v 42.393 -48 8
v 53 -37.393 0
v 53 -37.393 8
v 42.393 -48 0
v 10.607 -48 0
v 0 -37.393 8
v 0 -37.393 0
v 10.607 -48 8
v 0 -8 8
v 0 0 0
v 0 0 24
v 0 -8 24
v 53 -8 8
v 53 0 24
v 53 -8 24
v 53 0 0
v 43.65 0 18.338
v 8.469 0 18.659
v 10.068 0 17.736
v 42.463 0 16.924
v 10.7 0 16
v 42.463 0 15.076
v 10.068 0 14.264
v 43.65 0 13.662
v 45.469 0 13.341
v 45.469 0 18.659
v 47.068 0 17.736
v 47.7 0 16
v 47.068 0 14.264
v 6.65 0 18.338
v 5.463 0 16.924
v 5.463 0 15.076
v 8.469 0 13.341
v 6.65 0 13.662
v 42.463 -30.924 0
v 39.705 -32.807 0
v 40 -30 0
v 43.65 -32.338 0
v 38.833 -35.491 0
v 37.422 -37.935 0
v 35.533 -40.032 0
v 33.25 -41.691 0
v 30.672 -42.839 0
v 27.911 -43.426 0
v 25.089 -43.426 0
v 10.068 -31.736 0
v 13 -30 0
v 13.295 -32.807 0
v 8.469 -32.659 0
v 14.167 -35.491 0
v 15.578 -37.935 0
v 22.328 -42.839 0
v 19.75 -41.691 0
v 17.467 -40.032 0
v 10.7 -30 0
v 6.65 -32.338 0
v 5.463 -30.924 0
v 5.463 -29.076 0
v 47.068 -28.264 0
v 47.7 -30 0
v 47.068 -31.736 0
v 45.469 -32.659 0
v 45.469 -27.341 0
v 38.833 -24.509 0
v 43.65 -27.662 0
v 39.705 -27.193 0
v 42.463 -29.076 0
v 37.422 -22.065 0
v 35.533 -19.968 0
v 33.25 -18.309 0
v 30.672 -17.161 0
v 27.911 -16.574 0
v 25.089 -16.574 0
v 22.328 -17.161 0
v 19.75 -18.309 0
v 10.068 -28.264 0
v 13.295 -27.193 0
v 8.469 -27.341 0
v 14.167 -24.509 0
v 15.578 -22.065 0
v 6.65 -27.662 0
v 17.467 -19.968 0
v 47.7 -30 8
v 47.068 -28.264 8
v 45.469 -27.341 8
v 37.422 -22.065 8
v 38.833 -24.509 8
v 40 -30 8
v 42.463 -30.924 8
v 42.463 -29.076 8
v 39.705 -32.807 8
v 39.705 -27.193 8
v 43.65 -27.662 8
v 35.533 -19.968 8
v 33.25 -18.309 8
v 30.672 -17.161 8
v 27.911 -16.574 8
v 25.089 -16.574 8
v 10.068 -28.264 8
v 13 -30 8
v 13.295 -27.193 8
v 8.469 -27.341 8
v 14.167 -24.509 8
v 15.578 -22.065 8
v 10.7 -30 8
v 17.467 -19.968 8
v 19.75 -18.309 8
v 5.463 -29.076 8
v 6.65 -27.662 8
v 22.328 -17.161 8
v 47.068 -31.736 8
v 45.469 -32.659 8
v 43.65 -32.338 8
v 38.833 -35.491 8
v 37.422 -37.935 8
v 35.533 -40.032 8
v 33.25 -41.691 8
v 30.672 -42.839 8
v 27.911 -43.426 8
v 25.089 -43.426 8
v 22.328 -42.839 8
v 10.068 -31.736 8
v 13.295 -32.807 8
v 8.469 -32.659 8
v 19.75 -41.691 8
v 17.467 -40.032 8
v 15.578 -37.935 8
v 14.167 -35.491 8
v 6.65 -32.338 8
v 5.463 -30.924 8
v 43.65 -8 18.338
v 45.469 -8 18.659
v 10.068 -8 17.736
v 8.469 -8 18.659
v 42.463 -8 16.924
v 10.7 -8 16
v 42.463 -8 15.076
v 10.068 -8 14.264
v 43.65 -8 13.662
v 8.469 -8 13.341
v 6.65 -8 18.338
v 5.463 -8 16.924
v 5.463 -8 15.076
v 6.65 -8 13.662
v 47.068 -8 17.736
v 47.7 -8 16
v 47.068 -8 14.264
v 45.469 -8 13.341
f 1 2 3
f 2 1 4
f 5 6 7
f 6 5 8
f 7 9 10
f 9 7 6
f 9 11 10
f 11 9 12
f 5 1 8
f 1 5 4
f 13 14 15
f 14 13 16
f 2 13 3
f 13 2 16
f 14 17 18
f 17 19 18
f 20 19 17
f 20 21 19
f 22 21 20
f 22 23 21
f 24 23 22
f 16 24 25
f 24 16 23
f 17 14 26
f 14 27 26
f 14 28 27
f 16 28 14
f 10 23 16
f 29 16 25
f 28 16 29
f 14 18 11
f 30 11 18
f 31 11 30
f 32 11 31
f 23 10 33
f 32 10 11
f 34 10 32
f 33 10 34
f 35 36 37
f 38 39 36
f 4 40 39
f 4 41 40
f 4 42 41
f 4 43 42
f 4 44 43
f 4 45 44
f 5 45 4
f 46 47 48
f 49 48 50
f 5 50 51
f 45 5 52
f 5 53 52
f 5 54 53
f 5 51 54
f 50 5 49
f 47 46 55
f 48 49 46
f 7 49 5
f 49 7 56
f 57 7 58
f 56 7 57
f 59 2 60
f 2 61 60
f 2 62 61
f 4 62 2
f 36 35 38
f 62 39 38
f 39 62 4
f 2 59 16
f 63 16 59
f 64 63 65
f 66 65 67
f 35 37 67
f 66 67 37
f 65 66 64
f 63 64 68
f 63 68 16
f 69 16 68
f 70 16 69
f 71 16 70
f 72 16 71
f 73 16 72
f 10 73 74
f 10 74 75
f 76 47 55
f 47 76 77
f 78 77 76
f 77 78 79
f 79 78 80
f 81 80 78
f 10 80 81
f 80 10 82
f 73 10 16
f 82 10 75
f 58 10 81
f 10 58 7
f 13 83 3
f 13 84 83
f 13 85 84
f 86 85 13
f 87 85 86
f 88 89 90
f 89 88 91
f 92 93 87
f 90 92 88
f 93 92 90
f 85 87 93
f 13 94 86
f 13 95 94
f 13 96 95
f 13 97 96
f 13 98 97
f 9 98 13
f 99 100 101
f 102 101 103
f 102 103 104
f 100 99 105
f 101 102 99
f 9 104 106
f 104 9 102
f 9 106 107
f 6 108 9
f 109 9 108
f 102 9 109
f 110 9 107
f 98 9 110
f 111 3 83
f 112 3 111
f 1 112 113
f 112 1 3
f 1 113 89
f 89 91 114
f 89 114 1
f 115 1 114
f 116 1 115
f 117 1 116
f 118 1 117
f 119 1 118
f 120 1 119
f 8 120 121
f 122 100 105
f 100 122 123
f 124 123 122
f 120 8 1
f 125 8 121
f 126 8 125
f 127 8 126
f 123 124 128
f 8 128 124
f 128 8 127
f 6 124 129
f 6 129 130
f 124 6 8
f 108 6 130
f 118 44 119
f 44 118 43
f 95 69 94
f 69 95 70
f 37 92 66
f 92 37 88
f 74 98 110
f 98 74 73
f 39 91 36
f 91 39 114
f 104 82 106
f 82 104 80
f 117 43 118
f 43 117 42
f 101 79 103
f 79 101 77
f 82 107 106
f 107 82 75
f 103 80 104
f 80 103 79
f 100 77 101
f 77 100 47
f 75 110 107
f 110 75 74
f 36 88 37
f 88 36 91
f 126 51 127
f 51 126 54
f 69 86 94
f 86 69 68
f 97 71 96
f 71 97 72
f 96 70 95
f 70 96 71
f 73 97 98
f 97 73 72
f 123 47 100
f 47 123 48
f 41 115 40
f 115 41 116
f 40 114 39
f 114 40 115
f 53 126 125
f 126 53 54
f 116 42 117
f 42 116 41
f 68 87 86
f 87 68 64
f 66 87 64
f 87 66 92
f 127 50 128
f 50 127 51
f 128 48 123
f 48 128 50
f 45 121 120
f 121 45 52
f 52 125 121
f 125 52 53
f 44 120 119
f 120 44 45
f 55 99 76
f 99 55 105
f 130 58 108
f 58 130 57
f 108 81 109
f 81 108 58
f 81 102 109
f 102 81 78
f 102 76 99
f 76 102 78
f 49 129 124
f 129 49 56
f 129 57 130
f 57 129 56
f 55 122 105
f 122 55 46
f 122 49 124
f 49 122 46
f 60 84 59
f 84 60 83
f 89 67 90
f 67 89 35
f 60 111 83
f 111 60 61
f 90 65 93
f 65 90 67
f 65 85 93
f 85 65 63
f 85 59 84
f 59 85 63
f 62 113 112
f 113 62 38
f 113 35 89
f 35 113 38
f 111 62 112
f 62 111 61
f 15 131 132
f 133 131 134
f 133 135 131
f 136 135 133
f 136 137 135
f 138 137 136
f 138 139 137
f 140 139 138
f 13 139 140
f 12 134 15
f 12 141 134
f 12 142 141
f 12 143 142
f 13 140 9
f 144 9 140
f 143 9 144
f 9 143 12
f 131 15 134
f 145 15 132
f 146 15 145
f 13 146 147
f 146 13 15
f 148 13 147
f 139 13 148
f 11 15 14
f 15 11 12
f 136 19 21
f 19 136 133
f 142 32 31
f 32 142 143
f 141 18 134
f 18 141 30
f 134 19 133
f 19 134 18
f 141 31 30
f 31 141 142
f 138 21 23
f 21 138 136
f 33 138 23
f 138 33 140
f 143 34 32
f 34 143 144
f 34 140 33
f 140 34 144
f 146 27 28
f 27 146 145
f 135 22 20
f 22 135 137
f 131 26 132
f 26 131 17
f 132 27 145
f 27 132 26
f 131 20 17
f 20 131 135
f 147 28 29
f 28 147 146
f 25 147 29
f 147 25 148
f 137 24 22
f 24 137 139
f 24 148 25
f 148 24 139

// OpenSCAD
// file: Cubo.scad
// -----------------
// module cubo
// GPL v2.0
// yvoz.lg@gmail.com
// -----------------


// exemples ----

cubo([10,10,5], [1,2,3,4,5,6,7,8,9,10,11,12], 1.5);

translate([15, 0, 0]){
	difference(){
		cubo([10,20,5], [2,3], 3);
		translate([5,10,-1]) cylinder(r=2, h=7, $fn=12);
	}
}

translate([-15, 0, 0]){
	difference(){
		cube([10,20,15]);
		translate([3,3,3]) cubo([10,20,50], [1,5], 3);
	}
}

// ------------

module cubo(dim, cro, a){

	diago = sqrt(pow(a,2)+pow(a,2));
	difference(){
		cube(dim);
		
		for(i=cro){
			//x
			if(i==1){
				translate([-1, 0, -diago/2])
				rotate([45, 0, 0])
				cube([dim.x+2, a, a]);
			}
			if(i==2){
				translate([-1, 0, dim.z-diago/2])
				rotate([45, 0, 0])
				cube([dim.x+2, a, a]);
			}
			if(i==3){
				translate([-1, dim.y, dim.z-diago/2])
				rotate([45, 0, 0])
				cube([dim.x+2, a, a]);
			}
			if(i==4){
				translate([-1, dim.y, -diago/2])
				rotate([45, 0, 0])
				cube([dim.x+2, a, a]);
			}
			//y
			if(i==5){
				translate([-diago/2, -1, 0])
				rotate([0, 45, 0])
				cube([a, dim.y+2, a]);
			}
			if(i==6){
				translate([dim.x-diago/2, -1, 0])
				rotate([0, 45, 0])
				cube([a, dim.y+2, a]);
			}
			if(i==7){
				translate([dim.x-diago/2, -1, dim.z])
				rotate([0, 45, 0])
				cube([a, dim.y+2, a]);
			}
			if(i==8){
				translate([-diago/2, -1, dim.z])
				rotate([0, 45, 0])
				cube([a, dim.y+2, a]);
			}
			//z
			if(i==9){
				translate([0, -diago/2, -1])
				rotate([0, 0, 45])
				cube([a, a, dim.z+2]);
			}
			if(i==10){
				translate([0, dim.y-diago/2, -1])
				rotate([0, 0, 45])
				cube([a, a, dim.z+2]);
			}
			if(i==11){
				translate([dim.x, dim.y-diago/2, -1])
				rotate([0, 0, 45])
				cube([a, a, dim.z+2]);
			}
			if(i==12){
				translate([dim.x, -diago/2, -1])
				rotate([0, 0, 45])
				cube([a, a, dim.z+2]);
			}
		}
	}
}
// main file
nivz = 30;

rrou = 26/2; // rayon bague plate base piston
esp = 37; // espace trous fixa
rvr = 5/2; // rayon vis fixa

epx = 8;
epy = 8;

use <Cubo.scad>;

function roul_bov() = epx;
function roul_spv() = esp;
function roul_y() = epy*3;

module roulevis(){
	difference() {
		cubo([epx+esp+epx, epy, nivz+rrou+5], [7,8], 15);
		translate([epx+esp/2, -1, nivz]) rotate([-90,0,0]) cylinder(r=rrou+0.5, h=epy+2);
		
		translate([epx, -1, nivz]) rotate([-90,0,0]) cylinder(r=rvr+0.2, h=epy+2);
		translate([epx+esp, -1, nivz]) rotate([-90,0,0]) cylinder(r=rvr+0.2, h=epy+2);
	}

	difference(){
		cube([epx+esp+epx, epy*3, epy]);
		translate([epx, epy*2, -1]) cylinder(r=rvr+0.2, h=epy+2);
		translate([epx+esp, epy*2, -1]) cylinder(r=rvr+0.2, h=epy+2);
	}
}

rotate([90,0,0]) roulevis();
